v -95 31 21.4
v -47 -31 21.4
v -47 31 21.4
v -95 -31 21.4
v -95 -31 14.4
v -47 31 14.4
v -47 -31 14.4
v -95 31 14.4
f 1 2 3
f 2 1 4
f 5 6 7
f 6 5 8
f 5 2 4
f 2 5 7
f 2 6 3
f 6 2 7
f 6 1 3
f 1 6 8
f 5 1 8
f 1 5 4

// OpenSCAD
// file: ../md_vitamins.scad
// Envelopes of the bought electronics, placed where the parts expect them (for fit checks and renders)
SG90_STL = "/Users/hemangvora/OpenDuck/upstream/Open_Duck_Mini/mini_bdx/robots/open_duck_mini_v2/sg90.stl";
module v_sg90_jaw() multmatrix([[1,0,0,JAW_P[0]-5.7],[0,0,-1,-SG_BASE],[0,1,0,JAW_P[1]],[0,0,0,1]]) import(SG90_STL);
module v_radxa() {                         // Radxa Zero 3W 65 x 30 board on 6 mm standoffs + 16 mm component/wire budget
    translate([RADXA_X0, RADXA_Y0, CH_Z1 + 6]) { cube([65, 30, 1.6]); translate([2, 2, 1.6]) cube([61, 26, 16]); translate([0, 0, -2]) cube([65, 30, 2]); }
}
module v_buck() translate([-30, -13.5, CH_Z1 + 1]) cube([46, 27, 12]);            // XY-3606 (HW-688), generous envelope
module v_camera() translate([103.8, -12.5, EYE_C[1] - 14.5]) { cube([1.0, 25, 24]); translate([1.0, 12.5 - 4.25, 14.5 - 4.25]) cube([5.2, 8.5, 8.5]); }  // Pi cam v2 / IMX219 board + lens module
module v_tof() translate([103.8, TOF_C[0] - 6.5, TOF_C[1] - 6.5]) { cube([1.0, 13, 13]); translate([1.0, 6.5 - 3.2, 6.5 - 1.5]) cube([1.75, 6.4, 3.0]); }
module head_vitamins() { v_sg90_jaw(); v_radxa(); v_buck(); v_camera(); v_tof(); }

// ---------------- body electronics ----------------
module v_pack()    translate([DK_X0, -PACK[1] / 2, DK_Z1]) cube(PACK);                       // 3S1P Samsung 30Q pack
module v_bms()     translate([DK_X0 + 5, -31, DK_Z1 + PACK[2] + 0.5]) cube([48, 62, 7]);      // 3S 40 A BMS, 5-FET board
module v_adapter() translate([-44, -21, SHELF[4] + 4]) { cube([33, 42, 1.6]); translate([1, 1, 1.6]) cube([31, 40, 10]); }   // Bus Servo Adapter (A)
module v_switch()  {   // AUTO MT 12 V 20 A toggle, 12 mm hole; body 28 x 16 behind the panel, cover outside
    translate([DK_X0, SWITCH_C[0] - 14, SWITCH_C[1] - 8]) cube([45, 28, 16]);
    translate([BX_R - 25, SWITCH_C[0] - 14, SWITCH_C[1] - 8]) cube([25, 28, 16]);
}
module v_xt30()    translate([DK_X0, XT30_C[0] - 5.1, XT30_C[1] - 2.6]) cube([16, 10.2, 5.2]);
module v_balance() translate([DK_X0, BAL_C[0] - 6.2, BAL_C[1] - 2.9]) cube([8, 12.4, 5.8]);
module v_caps()    for (y = [26, 33]) translate([-40, y, SHELF[4] + 5.3]) rotate([0, 90, 0]) cylinder(d = 10.2, h = 21);  // 2 x 1000 uF 25 V lying on the shelf
module body_vitamins() { v_pack(); v_bms(); v_adapter(); v_switch(); v_xt30(); v_balance(); v_caps(); }
// file: ../md_params.scad
// =====================================================================
//  Microduck-look skin for the Open Duck Mini v2 skeleton
//  Shared parameters and helpers.
//  Frame: Open Duck print/robot frame, mm. +x forward, +y left, +z up.
//  Every part is modelled where it sits on the robot (zero pose).
// =====================================================================

$fn = 72;
EPS = 0.01;

// ---------- fasteners ----------
INSERT_D   = 4.0;   // hole for M3 x 5 brass heat-set insert (Amazon B0DZ8B7FW1)
INSERT_L   = 6.0;   // hole depth for that insert
M3_CLR     = 3.4;   // M3 clearance
M3_HEAD    = 6.5;   // M3 socket-head counterbore
M3_NUT     = 6.4;   // M3 nut across corners (+clearance)
M2_TAP     = 1.8;   // M2 self-tapping pilot (SG90 tab screws, servo adapter)
M25_TAP    = 2.2;   // M2.5 self-tapping pilot (Radxa)
M2_CLR     = 2.4;

// ---------- colours (for previews only) ----------
C_WHITE = [0.95, 0.94, 0.90];
C_BLACK = [0.13, 0.13, 0.14];

// ---------- helpers ----------
function lerp(a, b, t) = a + (b - a) * t;

// Section with vertical sides from zb to zc and a superellipse cap from zc to zt.
// Points are (y, z). n = 2 gives an ellipse, larger n gives a squarer top.
function se_pts(w, zb, zc, zt, n, N = 56) =
    concat(
        [[ w, zb]],
        [for (i = [0:N]) let(t = i * 180 / N, c = cos(t), s = sin(t))
            [w * sign(c) * pow(abs(c), 2 / n), zc + (zt - zc) * pow(abs(s), 2 / n)]],
        [[-w, zb]]
    );

// st = [x, half_width, z_bottom, z_curve_start, z_top, exponent]
module station(st, inset = 0, ext = 0) {
    translate([st[0], 0, 0]) rotate([90, 0, 90])
        linear_extrude(height = EPS, center = true)
            offset(delta = -inset)
                polygon(se_pts(st[1], st[2] - ext, st[3], st[4], st[5]));
}

// piecewise loft through convex stations (hull of neighbours)
module loft(sts, inset = 0, ext = 0) {
    for (i = [0:len(sts) - 2])
        hull() { station(sts[i], inset, ext); station(sts[i + 1], inset, ext); }
}

// station parameters interpolated at any x inside the list
function st_at(sts, x) =
    let(i = max([for (k = [0:len(sts) - 2]) if (sts[k][0] <= x) k]),
        a = sts[i], b = sts[i + 1], t = (x - a[0]) / (b[0] - a[0]))
    [x, lerp(a[1], b[1], t), lerp(a[2], b[2], t), lerp(a[3], b[3], t),
        lerp(a[4], b[4], t), lerp(a[5], b[5], t)];

// heat-set insert pocket: opening at origin, going along -z by default
module insert_hole(depth = INSERT_L, d = INSERT_D) {
    translate([0, 0, -depth]) cylinder(d = d, h = depth + EPS);
    translate([0, 0, -0.6]) cylinder(d1 = d, d2 = d + 0.8, h = 0.6 + EPS);   // lead-in chamfer
}

// M3 clearance with counterbore, axis +z, counterbore at the top
module m3_cb(len_total, cb_depth) {
    translate([0, 0, -EPS]) cylinder(d = M3_CLR, h = len_total + 2 * EPS);
    translate([0, 0, len_total - cb_depth]) cylinder(d = M3_HEAD, h = cb_depth + 1);
}

module rrect(x0, x1, y0, y1, r) {
    translate([x0 + r, y0 + r]) offset(r = r) square([x1 - x0 - 2 * r, y1 - y0 - 2 * r]);
}
// main file
include <../md_params.scad>
include <../md_head.scad>
include <../md_body.scad>
include <../md_vitamins.scad>
v_bms();
